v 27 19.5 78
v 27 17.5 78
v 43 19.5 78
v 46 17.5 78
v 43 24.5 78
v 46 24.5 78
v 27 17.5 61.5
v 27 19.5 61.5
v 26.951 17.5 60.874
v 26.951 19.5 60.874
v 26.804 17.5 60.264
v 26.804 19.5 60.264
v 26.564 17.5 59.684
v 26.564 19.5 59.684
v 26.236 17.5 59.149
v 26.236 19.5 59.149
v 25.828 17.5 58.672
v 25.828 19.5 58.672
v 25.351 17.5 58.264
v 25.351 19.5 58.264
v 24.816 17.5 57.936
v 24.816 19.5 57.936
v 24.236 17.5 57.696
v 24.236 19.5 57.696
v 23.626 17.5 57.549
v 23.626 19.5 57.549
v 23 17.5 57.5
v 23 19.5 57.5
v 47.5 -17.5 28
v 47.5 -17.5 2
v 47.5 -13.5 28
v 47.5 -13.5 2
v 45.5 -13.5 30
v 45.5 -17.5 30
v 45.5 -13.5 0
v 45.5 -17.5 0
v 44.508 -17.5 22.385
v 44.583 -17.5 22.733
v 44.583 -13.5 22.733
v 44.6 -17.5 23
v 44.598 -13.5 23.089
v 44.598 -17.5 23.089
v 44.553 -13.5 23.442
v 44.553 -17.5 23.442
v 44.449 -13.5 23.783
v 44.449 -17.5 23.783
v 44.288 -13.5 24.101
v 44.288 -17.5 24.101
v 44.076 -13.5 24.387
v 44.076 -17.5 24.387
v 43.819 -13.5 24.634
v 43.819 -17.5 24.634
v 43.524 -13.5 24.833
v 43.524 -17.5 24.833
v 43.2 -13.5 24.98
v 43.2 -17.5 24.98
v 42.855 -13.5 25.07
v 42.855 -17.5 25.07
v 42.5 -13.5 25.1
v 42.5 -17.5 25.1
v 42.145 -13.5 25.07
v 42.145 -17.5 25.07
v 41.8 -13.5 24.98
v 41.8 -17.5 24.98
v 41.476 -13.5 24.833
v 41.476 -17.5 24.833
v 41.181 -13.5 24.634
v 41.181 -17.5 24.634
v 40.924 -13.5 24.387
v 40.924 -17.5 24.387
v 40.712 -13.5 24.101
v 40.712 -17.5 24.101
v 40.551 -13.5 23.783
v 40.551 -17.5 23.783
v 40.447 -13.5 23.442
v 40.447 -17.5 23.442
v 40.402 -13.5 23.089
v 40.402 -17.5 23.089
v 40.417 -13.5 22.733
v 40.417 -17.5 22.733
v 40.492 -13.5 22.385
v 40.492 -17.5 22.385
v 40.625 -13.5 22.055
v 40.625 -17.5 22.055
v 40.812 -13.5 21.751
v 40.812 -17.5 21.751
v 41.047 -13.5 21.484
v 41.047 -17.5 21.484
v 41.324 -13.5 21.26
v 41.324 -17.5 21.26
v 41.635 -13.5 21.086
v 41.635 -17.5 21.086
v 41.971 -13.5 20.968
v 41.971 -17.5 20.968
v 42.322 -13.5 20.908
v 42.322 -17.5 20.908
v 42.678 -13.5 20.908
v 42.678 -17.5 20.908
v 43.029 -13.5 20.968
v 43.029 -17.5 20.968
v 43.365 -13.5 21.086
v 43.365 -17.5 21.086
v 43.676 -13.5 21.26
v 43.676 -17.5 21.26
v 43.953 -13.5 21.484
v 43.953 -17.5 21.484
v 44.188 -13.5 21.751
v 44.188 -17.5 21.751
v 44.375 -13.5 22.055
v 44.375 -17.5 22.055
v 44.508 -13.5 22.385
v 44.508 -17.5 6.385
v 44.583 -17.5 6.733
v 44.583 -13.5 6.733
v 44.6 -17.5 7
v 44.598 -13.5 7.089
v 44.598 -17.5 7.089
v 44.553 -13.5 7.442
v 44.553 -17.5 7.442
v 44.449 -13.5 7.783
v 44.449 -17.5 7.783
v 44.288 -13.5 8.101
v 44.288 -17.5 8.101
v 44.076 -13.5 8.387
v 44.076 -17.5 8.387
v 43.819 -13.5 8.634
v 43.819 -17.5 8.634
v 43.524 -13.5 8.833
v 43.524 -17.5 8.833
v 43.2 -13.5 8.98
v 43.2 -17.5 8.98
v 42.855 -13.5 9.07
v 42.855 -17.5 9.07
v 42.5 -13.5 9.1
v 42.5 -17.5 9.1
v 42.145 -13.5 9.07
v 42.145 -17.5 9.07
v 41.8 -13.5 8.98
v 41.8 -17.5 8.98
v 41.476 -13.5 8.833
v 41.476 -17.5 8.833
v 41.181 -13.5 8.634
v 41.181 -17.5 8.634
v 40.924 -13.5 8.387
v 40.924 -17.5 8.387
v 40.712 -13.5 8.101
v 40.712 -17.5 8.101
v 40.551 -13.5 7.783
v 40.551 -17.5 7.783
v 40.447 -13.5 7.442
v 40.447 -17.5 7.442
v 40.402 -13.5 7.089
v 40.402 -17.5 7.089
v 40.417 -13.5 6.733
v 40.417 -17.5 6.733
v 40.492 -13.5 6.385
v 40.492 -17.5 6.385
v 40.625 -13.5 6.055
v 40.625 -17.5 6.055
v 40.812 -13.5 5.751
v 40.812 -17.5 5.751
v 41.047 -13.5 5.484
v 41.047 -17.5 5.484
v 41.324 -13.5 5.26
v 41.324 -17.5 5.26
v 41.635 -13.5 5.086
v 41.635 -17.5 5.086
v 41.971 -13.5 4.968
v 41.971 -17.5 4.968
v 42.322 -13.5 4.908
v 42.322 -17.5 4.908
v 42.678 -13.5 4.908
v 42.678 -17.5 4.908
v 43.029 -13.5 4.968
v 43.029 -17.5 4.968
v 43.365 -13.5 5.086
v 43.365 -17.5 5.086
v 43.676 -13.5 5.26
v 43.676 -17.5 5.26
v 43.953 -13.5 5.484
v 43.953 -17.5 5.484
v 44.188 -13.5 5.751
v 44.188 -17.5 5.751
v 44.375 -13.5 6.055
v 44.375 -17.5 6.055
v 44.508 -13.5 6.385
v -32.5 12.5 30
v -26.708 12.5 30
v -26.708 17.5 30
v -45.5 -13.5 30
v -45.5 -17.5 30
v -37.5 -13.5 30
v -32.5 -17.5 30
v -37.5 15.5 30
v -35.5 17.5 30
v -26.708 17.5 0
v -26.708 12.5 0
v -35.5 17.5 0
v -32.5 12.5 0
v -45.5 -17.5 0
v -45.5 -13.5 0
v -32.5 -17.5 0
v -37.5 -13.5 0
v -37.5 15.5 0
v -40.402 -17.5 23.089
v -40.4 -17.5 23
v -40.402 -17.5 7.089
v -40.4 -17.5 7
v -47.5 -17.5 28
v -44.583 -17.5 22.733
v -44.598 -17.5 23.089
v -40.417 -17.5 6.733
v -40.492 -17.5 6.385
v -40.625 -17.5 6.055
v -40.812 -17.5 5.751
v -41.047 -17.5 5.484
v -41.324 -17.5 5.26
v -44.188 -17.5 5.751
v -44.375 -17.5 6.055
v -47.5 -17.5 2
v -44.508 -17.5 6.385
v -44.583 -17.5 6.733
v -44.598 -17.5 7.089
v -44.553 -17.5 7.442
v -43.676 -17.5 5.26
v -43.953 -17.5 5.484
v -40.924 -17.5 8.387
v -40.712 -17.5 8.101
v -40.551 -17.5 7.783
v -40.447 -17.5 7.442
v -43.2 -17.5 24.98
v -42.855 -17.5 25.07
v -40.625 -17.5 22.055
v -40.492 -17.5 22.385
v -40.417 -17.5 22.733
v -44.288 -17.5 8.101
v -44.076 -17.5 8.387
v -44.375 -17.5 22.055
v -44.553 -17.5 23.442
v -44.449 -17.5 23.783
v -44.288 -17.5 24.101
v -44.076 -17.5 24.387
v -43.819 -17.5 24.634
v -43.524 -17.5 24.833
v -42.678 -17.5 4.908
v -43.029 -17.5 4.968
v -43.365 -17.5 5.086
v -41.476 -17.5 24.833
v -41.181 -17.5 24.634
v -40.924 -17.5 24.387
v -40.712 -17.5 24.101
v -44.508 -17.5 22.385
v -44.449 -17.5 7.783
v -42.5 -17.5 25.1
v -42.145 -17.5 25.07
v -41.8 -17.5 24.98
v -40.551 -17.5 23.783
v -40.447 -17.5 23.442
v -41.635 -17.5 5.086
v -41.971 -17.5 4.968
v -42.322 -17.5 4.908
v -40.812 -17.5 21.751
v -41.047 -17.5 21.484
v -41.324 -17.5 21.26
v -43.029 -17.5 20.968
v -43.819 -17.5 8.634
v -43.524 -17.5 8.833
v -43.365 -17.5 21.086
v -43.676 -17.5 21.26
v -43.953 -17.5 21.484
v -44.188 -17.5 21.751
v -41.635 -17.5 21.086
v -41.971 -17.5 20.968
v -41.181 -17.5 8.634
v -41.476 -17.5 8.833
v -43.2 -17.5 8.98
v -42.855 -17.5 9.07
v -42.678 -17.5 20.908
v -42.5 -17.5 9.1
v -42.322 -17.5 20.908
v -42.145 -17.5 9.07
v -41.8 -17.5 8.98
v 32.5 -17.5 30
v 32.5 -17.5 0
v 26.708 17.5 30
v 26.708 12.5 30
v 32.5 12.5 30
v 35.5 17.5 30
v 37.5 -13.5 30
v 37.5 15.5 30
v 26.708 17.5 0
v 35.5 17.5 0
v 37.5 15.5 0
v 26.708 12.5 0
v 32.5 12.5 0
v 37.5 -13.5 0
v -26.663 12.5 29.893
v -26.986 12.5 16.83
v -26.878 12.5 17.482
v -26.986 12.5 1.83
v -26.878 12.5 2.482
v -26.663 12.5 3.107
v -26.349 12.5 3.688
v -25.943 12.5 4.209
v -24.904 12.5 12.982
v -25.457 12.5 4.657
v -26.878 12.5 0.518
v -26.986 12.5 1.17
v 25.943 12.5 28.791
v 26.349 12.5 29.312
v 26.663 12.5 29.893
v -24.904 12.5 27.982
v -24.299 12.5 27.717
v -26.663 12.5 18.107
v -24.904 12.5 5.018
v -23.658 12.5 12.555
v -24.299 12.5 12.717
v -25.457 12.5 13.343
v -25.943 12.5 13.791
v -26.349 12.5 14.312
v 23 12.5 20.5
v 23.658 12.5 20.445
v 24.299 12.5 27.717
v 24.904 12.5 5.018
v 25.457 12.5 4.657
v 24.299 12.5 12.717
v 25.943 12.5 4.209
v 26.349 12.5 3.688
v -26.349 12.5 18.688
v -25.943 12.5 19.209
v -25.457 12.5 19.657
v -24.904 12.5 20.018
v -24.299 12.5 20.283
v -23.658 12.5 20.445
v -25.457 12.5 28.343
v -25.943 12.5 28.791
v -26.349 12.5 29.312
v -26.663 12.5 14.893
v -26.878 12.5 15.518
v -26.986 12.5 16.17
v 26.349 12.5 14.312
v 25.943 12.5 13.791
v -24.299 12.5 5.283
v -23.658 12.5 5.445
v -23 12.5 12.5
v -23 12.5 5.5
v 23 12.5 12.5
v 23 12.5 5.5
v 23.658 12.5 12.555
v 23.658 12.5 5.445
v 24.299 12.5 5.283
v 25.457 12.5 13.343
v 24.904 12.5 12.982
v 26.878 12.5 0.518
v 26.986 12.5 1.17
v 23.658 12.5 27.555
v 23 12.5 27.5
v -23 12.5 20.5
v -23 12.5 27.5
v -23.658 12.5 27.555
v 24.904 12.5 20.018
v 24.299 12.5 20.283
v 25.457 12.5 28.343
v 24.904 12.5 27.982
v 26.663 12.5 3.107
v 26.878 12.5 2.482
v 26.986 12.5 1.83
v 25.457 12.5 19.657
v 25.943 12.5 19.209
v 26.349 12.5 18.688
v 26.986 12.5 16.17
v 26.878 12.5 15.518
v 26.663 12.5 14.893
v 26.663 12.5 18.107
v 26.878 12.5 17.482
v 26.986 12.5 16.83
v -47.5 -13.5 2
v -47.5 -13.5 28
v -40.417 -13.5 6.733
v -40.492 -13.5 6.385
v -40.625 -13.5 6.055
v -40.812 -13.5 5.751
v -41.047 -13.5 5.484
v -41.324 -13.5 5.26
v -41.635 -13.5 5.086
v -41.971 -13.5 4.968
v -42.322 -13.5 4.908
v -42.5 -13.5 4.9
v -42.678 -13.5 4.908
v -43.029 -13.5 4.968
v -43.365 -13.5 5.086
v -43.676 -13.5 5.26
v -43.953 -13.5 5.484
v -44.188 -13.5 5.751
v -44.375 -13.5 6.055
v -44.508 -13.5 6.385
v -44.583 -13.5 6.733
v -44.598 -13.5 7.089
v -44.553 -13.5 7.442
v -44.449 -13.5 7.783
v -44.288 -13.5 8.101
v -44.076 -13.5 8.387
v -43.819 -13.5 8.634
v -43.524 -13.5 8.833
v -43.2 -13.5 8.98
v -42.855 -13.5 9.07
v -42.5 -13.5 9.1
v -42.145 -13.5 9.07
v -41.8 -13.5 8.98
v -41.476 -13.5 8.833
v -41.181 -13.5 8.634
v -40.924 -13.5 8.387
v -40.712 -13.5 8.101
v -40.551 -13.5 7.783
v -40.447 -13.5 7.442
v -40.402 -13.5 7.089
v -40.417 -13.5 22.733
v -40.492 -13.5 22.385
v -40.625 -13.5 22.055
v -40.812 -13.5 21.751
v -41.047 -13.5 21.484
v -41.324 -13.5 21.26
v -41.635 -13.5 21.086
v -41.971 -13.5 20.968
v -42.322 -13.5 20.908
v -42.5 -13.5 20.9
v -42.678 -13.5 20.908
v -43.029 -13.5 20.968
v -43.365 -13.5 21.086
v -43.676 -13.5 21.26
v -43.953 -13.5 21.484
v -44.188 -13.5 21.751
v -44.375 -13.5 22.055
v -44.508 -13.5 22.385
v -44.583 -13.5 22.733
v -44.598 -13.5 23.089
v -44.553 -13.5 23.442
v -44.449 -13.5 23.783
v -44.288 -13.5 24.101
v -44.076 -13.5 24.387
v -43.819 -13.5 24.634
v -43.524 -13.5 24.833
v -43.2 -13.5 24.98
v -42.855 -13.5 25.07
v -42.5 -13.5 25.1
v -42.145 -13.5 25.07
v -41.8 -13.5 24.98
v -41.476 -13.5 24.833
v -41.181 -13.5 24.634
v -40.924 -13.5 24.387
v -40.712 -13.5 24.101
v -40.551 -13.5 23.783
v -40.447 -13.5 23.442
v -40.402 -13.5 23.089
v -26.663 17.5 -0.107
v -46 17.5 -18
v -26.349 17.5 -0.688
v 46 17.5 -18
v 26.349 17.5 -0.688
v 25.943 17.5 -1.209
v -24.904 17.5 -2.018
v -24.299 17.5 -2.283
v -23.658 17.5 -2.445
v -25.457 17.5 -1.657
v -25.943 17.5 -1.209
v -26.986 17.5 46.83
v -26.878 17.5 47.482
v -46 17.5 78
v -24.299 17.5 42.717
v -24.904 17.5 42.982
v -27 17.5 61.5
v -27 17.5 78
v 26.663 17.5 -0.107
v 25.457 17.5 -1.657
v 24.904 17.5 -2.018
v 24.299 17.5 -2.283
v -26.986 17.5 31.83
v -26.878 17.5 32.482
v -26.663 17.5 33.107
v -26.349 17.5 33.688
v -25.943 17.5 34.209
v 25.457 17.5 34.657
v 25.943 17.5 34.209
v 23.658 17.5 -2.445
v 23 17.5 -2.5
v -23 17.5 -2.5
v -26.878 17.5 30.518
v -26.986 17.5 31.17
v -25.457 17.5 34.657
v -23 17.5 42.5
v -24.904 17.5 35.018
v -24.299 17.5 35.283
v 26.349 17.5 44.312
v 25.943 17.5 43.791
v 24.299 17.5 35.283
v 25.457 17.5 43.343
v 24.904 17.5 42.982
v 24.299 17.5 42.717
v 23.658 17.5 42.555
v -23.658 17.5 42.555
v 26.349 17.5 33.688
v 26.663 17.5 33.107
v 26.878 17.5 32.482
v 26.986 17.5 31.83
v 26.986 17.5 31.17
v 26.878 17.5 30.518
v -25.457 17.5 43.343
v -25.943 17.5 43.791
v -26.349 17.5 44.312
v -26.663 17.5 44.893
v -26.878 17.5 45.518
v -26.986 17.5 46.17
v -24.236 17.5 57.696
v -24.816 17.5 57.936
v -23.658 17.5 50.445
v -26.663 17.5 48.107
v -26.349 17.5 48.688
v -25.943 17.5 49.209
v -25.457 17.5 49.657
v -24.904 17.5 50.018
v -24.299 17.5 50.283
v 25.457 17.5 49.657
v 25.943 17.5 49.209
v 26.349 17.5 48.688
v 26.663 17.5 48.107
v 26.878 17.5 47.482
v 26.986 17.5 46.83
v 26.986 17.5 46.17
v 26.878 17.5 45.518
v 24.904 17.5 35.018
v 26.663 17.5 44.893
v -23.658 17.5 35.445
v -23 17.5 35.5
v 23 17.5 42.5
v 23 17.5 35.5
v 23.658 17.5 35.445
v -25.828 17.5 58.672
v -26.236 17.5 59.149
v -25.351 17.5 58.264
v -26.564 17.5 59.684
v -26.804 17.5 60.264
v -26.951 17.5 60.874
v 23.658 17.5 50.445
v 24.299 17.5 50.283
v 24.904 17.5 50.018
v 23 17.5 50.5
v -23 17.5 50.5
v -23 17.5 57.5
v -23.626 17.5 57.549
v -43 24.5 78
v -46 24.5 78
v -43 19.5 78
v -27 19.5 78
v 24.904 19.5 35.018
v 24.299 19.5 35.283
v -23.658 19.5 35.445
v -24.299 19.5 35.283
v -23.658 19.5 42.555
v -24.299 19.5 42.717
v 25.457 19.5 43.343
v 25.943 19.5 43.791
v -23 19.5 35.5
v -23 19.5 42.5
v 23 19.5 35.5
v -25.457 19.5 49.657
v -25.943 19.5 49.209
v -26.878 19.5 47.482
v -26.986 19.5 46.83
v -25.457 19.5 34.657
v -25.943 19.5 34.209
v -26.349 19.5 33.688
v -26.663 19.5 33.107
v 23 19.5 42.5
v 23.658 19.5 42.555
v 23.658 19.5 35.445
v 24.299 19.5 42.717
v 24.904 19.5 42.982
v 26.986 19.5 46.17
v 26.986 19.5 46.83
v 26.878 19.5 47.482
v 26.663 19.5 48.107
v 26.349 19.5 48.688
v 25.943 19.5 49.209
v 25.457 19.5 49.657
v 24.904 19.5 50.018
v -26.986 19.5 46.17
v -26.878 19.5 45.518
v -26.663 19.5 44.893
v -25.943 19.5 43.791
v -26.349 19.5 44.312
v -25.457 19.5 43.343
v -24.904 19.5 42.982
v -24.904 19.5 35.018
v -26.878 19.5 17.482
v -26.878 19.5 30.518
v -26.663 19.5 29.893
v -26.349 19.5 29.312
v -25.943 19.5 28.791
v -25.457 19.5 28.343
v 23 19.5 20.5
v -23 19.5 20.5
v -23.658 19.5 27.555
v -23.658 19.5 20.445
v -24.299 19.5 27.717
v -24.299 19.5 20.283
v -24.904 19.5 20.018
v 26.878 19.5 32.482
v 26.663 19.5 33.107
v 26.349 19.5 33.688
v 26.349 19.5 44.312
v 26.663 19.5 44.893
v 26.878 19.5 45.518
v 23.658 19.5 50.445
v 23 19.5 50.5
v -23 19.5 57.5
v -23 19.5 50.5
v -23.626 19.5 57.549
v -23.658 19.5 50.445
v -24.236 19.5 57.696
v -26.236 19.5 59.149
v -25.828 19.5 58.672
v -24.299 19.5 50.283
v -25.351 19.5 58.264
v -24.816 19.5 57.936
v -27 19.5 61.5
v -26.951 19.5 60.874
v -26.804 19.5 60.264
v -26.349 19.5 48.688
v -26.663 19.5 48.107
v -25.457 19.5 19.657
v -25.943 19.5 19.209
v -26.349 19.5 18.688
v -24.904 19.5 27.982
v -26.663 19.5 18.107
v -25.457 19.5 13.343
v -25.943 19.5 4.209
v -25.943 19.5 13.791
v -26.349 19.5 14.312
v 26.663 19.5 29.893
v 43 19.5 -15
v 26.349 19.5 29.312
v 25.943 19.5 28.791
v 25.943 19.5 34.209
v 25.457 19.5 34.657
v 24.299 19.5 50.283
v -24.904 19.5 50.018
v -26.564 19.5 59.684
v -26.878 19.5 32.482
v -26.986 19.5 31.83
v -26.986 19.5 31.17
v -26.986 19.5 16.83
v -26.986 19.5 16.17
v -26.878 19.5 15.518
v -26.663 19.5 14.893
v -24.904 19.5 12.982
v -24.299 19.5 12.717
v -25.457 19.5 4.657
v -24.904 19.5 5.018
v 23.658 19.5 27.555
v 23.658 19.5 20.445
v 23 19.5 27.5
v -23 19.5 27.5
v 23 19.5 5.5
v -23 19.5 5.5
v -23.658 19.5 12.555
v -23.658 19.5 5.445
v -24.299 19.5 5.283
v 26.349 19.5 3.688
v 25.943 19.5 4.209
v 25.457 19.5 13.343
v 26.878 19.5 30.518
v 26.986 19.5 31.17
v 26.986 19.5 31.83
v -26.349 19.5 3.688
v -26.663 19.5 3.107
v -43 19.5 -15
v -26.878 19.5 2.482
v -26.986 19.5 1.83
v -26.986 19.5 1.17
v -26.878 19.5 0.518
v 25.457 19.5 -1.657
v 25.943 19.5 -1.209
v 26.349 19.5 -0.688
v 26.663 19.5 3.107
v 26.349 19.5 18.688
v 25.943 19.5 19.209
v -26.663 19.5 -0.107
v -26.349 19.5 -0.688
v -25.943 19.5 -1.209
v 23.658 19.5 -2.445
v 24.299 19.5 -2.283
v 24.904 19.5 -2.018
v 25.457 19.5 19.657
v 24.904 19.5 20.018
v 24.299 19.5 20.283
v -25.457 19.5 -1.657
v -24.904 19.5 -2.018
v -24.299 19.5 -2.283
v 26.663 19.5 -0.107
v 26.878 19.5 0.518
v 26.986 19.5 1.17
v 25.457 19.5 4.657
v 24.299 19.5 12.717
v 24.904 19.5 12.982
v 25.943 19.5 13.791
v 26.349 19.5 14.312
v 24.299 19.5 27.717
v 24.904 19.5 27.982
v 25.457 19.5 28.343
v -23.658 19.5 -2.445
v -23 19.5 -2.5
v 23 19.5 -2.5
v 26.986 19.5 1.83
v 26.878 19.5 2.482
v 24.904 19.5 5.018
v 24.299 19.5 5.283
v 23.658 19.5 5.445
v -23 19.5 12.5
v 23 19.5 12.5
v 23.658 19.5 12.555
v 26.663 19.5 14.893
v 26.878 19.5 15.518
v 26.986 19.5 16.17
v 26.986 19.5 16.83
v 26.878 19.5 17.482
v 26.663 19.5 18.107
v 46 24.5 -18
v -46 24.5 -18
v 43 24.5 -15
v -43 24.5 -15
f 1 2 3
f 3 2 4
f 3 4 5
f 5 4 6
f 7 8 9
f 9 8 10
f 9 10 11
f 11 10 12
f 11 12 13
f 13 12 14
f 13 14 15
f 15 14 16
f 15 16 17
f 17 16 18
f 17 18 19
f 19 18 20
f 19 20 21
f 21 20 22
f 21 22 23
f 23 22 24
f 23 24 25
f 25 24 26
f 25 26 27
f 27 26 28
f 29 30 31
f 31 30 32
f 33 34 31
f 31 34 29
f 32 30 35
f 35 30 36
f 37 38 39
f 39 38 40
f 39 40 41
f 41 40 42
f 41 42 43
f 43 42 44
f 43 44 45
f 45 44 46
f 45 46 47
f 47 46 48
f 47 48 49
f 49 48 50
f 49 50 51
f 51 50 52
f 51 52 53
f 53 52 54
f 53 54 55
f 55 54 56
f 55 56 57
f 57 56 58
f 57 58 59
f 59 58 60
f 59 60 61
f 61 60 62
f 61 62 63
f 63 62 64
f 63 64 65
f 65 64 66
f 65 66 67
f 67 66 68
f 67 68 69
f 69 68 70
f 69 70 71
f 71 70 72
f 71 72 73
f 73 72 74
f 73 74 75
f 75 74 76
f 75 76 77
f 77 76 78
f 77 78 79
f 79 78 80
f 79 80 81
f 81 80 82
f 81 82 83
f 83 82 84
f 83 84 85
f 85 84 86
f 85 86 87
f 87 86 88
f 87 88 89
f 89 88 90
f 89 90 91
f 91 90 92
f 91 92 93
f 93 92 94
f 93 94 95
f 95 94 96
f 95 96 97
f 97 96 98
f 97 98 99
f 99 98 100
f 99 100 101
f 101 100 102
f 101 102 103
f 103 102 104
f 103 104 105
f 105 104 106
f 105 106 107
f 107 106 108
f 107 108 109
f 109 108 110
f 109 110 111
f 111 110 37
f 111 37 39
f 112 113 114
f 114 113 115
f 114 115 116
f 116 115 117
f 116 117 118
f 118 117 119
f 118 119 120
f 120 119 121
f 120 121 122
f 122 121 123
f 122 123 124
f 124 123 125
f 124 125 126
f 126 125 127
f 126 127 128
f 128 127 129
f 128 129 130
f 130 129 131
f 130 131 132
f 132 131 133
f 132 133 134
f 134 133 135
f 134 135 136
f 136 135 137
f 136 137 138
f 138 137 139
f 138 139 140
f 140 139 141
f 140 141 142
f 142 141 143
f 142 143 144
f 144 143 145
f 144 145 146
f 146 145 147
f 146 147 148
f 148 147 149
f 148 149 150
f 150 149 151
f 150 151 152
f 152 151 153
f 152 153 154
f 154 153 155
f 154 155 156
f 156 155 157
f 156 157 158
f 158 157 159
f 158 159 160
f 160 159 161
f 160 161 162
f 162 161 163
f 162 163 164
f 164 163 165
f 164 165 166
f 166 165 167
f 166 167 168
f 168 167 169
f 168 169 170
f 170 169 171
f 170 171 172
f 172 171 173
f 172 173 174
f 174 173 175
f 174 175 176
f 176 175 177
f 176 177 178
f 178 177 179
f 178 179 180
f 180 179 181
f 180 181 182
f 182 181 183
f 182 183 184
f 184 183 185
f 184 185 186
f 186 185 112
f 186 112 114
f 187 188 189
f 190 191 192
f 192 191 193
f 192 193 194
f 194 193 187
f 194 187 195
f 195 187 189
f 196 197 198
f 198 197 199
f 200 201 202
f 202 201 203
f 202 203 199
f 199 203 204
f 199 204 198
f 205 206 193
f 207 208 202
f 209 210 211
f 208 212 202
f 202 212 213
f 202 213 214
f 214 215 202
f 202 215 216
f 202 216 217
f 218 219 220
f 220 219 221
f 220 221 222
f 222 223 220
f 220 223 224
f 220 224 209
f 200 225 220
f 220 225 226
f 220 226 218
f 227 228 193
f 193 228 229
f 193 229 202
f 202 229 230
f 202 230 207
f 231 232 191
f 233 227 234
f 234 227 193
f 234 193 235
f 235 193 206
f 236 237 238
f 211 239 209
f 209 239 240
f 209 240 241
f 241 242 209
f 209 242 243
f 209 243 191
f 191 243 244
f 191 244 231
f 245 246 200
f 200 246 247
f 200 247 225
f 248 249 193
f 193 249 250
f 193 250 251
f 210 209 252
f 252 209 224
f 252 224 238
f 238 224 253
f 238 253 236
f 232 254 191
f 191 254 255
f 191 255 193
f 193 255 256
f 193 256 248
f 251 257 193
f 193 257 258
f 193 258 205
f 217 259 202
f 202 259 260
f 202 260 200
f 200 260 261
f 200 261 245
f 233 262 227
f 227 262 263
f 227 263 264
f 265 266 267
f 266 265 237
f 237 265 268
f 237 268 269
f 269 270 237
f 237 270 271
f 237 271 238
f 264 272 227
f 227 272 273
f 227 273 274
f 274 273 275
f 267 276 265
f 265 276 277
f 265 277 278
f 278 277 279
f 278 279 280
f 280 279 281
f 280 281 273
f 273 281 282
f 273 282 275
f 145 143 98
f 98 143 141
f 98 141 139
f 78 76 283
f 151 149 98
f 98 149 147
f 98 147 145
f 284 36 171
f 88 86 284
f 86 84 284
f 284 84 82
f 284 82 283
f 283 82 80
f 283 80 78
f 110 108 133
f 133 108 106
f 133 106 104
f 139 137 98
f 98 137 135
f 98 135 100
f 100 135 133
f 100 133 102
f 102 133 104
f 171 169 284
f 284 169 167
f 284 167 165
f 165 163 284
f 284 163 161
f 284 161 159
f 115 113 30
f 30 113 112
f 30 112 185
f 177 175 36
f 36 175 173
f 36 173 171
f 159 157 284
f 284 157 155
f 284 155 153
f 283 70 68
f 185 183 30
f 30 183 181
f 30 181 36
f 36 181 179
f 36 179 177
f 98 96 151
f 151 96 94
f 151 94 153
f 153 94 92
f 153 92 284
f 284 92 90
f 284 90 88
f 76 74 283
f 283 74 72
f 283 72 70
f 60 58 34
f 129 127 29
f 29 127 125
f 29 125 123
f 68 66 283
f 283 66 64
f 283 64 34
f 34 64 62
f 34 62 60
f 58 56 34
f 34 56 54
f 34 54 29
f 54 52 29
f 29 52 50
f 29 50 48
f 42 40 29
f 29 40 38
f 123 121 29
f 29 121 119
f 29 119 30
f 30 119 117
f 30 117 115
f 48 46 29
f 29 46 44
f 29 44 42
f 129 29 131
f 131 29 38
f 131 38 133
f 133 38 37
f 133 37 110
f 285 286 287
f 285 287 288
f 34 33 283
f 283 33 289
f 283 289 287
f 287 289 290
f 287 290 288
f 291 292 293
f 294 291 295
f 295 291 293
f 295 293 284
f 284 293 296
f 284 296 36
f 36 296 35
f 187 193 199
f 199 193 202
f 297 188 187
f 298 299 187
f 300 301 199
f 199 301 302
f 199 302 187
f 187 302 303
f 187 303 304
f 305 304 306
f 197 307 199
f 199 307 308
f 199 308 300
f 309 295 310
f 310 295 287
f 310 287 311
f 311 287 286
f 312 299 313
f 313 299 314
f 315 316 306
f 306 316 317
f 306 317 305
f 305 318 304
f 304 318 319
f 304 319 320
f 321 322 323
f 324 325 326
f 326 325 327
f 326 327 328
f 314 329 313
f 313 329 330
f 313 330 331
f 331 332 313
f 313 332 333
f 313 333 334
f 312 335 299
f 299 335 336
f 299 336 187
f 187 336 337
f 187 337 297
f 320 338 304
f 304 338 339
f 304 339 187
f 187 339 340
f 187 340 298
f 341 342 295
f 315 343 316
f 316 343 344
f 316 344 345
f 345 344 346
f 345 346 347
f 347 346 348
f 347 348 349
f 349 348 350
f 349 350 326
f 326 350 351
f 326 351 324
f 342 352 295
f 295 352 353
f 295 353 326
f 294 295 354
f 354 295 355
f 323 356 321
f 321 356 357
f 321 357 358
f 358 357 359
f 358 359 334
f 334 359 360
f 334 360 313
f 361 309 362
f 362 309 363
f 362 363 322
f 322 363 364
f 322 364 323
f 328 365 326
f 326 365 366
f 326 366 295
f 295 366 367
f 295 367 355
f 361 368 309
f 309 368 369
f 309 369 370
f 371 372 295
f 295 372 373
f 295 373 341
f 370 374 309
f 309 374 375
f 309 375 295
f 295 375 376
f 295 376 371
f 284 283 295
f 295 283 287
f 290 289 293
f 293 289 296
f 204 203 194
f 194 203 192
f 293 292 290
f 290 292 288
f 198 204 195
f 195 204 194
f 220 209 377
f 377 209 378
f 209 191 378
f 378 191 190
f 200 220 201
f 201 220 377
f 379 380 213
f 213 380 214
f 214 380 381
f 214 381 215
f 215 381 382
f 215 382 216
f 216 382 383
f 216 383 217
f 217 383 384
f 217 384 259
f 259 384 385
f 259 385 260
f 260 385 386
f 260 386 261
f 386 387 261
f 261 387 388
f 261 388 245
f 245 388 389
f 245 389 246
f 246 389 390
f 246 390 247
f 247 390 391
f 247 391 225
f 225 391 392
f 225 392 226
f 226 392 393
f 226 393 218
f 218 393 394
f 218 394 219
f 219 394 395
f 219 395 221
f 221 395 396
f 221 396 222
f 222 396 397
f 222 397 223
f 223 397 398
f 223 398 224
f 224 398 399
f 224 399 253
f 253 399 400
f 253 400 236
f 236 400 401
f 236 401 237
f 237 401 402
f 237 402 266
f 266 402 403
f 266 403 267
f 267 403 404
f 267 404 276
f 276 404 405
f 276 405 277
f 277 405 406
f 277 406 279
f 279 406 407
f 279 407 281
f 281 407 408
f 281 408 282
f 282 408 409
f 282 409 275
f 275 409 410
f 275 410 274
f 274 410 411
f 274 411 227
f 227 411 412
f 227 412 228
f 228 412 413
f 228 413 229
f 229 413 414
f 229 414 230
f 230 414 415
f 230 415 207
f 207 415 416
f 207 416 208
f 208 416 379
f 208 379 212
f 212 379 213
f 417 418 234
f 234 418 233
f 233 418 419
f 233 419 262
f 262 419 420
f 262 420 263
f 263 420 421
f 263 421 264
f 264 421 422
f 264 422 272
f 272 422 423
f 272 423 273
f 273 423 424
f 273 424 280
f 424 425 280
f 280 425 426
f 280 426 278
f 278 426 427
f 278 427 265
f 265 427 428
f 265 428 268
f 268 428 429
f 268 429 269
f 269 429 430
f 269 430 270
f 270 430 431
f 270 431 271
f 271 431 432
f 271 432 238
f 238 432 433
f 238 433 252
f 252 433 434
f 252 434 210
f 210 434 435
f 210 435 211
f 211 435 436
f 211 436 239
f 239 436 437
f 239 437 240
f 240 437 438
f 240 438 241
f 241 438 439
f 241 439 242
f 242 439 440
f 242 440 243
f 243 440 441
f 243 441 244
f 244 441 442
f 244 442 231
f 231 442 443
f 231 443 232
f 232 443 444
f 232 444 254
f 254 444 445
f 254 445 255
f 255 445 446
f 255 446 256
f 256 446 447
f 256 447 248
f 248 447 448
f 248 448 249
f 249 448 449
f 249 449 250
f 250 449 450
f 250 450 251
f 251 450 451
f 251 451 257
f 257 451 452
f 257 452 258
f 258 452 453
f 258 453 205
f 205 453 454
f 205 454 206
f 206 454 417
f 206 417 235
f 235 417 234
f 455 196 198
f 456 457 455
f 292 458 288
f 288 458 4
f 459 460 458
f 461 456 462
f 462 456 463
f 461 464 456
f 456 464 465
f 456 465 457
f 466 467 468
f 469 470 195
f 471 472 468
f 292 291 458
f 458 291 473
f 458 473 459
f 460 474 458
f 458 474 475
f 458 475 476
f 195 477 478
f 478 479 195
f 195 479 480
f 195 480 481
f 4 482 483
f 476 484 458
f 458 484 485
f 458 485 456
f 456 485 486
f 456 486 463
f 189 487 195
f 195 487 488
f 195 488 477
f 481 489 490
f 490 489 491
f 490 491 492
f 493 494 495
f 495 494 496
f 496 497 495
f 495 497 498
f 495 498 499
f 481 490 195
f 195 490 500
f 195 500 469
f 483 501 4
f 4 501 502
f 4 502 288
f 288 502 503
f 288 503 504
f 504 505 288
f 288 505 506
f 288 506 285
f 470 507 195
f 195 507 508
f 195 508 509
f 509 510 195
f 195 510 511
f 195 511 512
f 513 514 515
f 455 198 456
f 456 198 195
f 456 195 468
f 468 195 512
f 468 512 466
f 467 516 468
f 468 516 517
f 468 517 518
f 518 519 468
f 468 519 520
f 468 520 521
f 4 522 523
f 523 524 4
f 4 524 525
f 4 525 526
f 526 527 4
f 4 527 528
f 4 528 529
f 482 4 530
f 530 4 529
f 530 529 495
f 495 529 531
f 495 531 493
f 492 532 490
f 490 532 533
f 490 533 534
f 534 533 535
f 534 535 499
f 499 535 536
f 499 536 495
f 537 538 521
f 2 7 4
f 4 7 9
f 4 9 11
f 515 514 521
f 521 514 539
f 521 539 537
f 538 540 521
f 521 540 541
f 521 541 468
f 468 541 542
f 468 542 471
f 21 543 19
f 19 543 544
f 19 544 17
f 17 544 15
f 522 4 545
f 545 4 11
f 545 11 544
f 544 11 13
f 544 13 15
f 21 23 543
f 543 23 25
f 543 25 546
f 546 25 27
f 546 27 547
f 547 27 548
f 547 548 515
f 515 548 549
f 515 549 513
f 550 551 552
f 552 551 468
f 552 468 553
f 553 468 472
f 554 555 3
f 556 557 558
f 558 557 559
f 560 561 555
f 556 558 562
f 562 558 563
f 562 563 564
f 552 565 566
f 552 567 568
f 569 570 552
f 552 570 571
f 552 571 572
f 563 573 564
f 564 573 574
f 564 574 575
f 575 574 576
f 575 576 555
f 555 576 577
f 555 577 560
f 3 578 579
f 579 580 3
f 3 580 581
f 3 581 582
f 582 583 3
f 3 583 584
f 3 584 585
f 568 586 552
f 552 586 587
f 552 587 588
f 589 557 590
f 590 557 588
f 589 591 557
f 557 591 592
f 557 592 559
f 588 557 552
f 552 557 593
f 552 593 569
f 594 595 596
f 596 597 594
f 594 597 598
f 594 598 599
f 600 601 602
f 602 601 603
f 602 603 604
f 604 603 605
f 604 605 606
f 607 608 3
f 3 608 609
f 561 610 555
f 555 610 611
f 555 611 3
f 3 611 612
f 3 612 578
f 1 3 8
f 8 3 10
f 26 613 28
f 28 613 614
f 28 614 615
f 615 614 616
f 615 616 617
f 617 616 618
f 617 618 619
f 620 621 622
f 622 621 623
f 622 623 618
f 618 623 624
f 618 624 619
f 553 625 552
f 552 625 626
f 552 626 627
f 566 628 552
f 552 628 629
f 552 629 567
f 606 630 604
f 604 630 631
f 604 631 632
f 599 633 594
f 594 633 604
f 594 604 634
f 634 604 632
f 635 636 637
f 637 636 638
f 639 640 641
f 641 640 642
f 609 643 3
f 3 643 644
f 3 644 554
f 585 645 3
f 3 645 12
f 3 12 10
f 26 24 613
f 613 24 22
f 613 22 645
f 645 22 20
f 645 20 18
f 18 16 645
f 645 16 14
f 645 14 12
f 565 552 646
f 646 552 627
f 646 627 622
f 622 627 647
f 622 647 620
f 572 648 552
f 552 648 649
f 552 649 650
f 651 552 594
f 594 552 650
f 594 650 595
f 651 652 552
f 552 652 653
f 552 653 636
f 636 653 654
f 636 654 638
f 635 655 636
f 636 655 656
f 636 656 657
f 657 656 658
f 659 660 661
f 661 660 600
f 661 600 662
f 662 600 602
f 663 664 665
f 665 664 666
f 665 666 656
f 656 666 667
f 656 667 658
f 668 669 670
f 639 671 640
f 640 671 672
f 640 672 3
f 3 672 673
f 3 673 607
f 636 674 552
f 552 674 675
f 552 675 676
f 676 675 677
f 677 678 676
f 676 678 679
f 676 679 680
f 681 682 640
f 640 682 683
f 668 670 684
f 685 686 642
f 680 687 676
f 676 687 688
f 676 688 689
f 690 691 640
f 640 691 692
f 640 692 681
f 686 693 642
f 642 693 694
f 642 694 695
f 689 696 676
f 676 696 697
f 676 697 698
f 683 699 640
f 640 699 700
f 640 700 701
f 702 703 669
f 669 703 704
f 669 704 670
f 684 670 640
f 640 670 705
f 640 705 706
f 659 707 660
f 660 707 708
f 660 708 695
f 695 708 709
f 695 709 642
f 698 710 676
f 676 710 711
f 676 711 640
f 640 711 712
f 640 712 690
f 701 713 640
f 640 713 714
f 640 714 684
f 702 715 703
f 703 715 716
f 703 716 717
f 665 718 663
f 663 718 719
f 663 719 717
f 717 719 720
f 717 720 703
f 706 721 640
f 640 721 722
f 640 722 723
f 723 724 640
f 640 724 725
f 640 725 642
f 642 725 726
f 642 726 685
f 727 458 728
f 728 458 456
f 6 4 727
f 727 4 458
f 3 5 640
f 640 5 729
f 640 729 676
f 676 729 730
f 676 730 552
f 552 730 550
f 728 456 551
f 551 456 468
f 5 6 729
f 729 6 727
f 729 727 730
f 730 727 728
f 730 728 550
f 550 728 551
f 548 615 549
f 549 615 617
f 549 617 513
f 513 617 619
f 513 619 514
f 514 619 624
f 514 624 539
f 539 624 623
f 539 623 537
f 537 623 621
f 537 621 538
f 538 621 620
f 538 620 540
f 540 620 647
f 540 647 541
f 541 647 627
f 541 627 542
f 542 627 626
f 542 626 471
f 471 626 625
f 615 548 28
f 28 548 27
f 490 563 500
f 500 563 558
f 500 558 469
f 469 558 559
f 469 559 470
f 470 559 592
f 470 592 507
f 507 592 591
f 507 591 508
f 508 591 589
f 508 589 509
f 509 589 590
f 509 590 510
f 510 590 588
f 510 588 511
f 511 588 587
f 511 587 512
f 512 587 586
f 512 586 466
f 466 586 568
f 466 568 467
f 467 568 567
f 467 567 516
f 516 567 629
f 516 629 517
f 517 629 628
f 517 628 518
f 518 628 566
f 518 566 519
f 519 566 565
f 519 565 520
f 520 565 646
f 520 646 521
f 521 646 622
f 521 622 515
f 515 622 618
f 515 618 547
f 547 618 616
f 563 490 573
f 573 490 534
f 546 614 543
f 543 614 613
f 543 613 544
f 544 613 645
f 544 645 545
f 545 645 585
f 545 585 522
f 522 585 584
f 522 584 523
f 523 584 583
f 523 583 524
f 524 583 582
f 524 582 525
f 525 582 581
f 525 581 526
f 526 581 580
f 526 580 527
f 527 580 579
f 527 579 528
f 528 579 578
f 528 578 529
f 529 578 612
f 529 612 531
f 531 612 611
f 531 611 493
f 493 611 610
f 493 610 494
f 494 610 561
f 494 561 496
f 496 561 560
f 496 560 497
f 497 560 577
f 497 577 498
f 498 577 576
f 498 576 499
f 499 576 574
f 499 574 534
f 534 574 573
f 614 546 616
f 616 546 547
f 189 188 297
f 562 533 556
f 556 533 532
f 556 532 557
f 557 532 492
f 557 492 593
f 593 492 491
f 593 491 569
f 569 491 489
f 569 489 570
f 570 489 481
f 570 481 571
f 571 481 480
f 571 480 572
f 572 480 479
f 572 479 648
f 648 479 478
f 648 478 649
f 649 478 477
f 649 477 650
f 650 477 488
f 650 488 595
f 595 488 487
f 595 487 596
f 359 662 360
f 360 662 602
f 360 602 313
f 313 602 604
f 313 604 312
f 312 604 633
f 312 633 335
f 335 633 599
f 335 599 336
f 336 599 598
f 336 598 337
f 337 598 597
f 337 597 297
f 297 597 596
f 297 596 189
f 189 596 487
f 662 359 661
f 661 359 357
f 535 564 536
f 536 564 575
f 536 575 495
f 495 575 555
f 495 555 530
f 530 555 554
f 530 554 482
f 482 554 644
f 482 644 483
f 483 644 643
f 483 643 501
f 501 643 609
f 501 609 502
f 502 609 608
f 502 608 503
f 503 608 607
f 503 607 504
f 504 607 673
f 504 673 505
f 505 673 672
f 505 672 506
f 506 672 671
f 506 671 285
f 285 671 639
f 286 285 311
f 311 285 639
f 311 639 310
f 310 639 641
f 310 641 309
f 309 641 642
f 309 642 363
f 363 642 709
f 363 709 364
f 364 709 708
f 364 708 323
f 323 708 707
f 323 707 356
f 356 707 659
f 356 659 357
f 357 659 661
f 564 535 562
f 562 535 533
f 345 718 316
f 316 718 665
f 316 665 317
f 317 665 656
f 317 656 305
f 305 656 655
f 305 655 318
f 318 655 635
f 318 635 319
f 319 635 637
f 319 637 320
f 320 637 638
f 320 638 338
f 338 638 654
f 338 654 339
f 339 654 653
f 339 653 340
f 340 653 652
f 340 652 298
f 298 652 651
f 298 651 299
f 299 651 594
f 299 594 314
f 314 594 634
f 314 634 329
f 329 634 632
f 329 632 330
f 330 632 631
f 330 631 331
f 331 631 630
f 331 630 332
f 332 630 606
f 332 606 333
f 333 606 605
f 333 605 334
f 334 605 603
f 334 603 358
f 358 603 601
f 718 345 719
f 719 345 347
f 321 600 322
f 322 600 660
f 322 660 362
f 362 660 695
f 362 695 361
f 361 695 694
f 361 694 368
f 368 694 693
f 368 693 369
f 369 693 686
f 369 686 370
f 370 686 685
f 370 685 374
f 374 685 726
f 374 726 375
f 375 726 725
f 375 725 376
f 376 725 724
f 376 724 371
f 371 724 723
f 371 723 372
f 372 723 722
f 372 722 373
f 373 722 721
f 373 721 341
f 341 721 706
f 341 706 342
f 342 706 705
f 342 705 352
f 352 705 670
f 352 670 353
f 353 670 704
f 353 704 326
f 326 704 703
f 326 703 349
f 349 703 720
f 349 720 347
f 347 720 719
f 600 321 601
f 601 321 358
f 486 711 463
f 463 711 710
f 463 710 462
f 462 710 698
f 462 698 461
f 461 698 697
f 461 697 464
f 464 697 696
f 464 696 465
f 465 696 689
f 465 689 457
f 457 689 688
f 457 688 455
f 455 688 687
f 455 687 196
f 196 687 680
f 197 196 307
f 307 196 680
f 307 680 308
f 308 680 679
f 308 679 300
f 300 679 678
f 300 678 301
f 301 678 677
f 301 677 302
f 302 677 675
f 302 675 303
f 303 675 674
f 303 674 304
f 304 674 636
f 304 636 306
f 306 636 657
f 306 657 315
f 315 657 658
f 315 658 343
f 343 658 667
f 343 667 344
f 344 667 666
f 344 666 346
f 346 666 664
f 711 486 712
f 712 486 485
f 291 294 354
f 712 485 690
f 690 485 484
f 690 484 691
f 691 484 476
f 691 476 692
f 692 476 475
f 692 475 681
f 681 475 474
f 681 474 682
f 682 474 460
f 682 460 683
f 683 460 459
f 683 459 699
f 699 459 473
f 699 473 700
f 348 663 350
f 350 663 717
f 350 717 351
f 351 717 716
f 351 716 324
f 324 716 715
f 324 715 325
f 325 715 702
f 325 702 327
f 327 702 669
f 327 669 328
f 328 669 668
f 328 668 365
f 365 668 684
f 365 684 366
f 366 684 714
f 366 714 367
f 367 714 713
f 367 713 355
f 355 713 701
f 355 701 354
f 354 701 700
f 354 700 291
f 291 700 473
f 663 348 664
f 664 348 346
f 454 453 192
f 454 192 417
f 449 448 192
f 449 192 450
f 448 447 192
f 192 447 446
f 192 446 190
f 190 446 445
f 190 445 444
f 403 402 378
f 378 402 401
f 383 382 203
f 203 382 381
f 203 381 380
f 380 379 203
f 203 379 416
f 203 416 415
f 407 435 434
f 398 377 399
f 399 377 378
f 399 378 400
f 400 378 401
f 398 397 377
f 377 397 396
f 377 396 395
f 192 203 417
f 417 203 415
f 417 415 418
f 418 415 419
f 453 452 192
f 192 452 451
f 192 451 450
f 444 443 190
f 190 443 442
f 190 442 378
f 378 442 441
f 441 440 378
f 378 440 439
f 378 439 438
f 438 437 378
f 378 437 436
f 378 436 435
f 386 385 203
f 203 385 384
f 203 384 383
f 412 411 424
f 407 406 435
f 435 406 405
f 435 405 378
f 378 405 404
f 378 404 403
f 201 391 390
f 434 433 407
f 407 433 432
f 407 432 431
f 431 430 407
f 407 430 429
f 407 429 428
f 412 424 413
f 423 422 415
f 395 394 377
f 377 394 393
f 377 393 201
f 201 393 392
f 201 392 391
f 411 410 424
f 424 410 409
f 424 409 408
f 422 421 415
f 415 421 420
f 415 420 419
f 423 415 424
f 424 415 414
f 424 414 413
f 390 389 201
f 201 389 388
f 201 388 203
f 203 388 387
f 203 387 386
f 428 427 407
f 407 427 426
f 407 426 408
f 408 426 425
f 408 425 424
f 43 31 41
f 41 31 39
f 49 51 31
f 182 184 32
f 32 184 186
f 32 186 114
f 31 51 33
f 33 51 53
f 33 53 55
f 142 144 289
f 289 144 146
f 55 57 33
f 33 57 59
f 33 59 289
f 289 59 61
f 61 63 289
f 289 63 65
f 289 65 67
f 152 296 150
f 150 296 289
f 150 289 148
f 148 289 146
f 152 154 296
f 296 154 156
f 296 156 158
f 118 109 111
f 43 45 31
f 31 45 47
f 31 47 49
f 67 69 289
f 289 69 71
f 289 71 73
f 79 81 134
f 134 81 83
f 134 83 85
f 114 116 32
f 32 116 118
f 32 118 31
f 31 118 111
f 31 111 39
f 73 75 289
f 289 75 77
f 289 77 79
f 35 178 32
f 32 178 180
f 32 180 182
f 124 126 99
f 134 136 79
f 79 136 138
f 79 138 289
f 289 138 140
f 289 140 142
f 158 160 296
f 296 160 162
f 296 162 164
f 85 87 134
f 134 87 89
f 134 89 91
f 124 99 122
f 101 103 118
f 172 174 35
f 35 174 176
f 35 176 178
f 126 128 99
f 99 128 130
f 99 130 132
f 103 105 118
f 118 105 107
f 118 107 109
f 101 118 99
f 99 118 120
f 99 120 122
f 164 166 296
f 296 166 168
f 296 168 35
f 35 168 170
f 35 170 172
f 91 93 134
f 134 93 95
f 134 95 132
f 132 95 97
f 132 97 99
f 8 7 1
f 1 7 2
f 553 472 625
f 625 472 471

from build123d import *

# Parameters (mm, degrees)
BOSS_EXTRUDE1_DEPTH      = 30
SKETCH2_W                = 50
SKETCH2_H                = 20
CUT_EXTRUDE1_DEPTH       = 30
CHAMFER1_SIZE            = 2
SKETCH3_R                = 2.1
CUT_EXTRUDE2_DEPTH       = 30
SKETCH6_W                = 5
SKETCH6_H                = 30
BOSS_EXTRUDE2_DEPTH      = 5
SKETCH8_W                = 50
SKETCH8_H                = 20
BOSS_EXTRUDE3_DEPTH      = 5
SKETCH9_W                = 25
SKETCH9_H                = 30
BOSS_EXTRUDE4_DEPTH      = 5
SKETCH10_W               = 25
SKETCH10_H               = 30
BOSS_EXTRUDE5_DEPTH      = 5
SKETCH12_W               = 10
SKETCH12_H               = 30
CUT_EXTRUDE3_DEPTH       = 10
SKETCH13_R               = 2.1
CUT_EXTRUDE4_DEPTH       = 10
CHAMFER2_SIZE            = 2
SKETCH14_W               = 6.64500098
SKETCH14_H               = 11.940236137
SKETCH14_W_2             = 7.060313542
SKETCH14_H_2             = 8.410079366
BOSS_EXTRUDE6_DEPTH      = 5
SKETCH15_R               = 2.1
CUT_EXTRUDE5_DEPTH       = 5
SKETCH17_W               = 86
SKETCH17_H               = 93
SKETCH17_W_2             = 71
SKETCH17_H_2             = 30
BOSS_EXTRUDE7_DEPTH      = 2
BOSS_EXTRUDE8_DEPTH      = 5
BOSS_EXTRUDE8_DEPTH_BACK = 2
CUT_EXTRUDE7_DEPTH       = 18
CUT_EXTRUDE8_DEPTH       = 1
SKETCH22_W               = 54
SKETCH22_H               = 16.5
CUT_EXTRUDE9_DEPTH       = 10


with BuildPart() as part:
    # Sketch1 → Boss-Extrude1 (new body)
    with BuildSketch(Plane.XY):
        Polygon((-57.5, -17.5), (-37.5, -17.5), (-32.5, -17.5), (-32.5, 12.5), (32.5, 12.5), (32.5, -17.5), (37.5, -17.5), (57.5, -17.5), (57.5, -12.5), (37.5, -12.5), (37.5, 17.5), (-37.5, 17.5), (-37.5, -12.5), (-57.5, -12.5), align=None)
    extrude(amount=BOSS_EXTRUDE1_DEPTH)

    # Sketch2 → Cut-Extrude1 (cut)
    with BuildSketch(Plane(origin=(0, 17.5, 0), x_dir=(1, 0, 0), z_dir=(0, 1, 0))):
        with Locations((0, -15)):
            Rectangle(SKETCH2_W, SKETCH2_H)
    extrude(amount=-CUT_EXTRUDE1_DEPTH, mode=Mode.SUBTRACT)

    # Chamfer1
    chamfer1_edges = [part.edges().sort_by_distance(p)[0] for p in [
        (-37.5, 17.5, 15),
        (37.5, 17.5, 15),
    ]]
    chamfer(chamfer1_edges, length=CHAMFER1_SIZE)

    # Sketch3 → Cut-Extrude2 (cut)
    with BuildSketch(Plane(origin=(0, -12.5, 0), x_dir=(1, 0, 0), z_dir=(0, 1, 0))):
        with Locations((-47.5, -15)):
            Circle(SKETCH3_R)
        with Locations((47.5, -15)):
            Circle(SKETCH3_R)
    extrude(amount=-CUT_EXTRUDE2_DEPTH, mode=Mode.SUBTRACT)

    # Sketch6 → Boss-Extrude2 (add)
    with BuildSketch(Plane(origin=(0, 17.5, 0), x_dir=(1, 0, 0), z_dir=(0, 1, 0))):
        with Locations((0, -15)):
            Rectangle(SKETCH6_W, SKETCH6_H)
    extrude(amount=-BOSS_EXTRUDE2_DEPTH)

    # Sketch8 → Boss-Extrude3 (add)
    with BuildSketch(Plane(origin=(0, 17.5, 0), x_dir=(1, 0, 0), z_dir=(0, 1, 0))):
        with Locations((0, -15)):
            Rectangle(SKETCH8_W, SKETCH8_H)
    extrude(amount=-BOSS_EXTRUDE3_DEPTH)

    # Sketch9 → Boss-Extrude4 (add)
    with BuildSketch(Plane(origin=(0, -17.5, 0), x_dir=(-1, 0, 0), z_dir=(0, -1, 0))):
        with Locations((45, -15)):
            Rectangle(SKETCH9_W, SKETCH9_H)
    extrude(amount=-BOSS_EXTRUDE4_DEPTH)

    # Sketch10 → Boss-Extrude5 (add)
    with BuildSketch(Plane(origin=(0, -17.5, 0), x_dir=(-1, 0, 0), z_dir=(0, -1, 0))):
        with Locations((-45, -15)):
            Rectangle(SKETCH10_W, SKETCH10_H)
    extrude(amount=-BOSS_EXTRUDE5_DEPTH)

    # Sketch12 → Cut-Extrude3 (cut)
    with BuildSketch(Plane(origin=(0, -12.5, 0), x_dir=(1, 0, 0), z_dir=(0, 1, 0))):
        with Locations((52.5, -15)):
            Rectangle(SKETCH12_W, SKETCH12_H)
        with Locations((-52.5, -15)):
            Rectangle(SKETCH12_W, SKETCH12_H)
    extrude(amount=-CUT_EXTRUDE3_DEPTH, mode=Mode.SUBTRACT)

    # Sketch13 → Cut-Extrude4 (cut)
    with BuildSketch(Plane(origin=(0, -12.5, 0), x_dir=(1, 0, 0), z_dir=(0, 1, 0))):
        with Locations((-42.5, -15)):
            Circle(SKETCH13_R)
        with Locations((42.5, -15)):
            Circle(SKETCH13_R)
    extrude(amount=-CUT_EXTRUDE4_DEPTH, mode=Mode.SUBTRACT)

    # Chamfer2
    chamfer2_edges = [part.edges().sort_by_distance(p)[0] for p in [
        (47.5, -15, 0),
        (-47.5, -15, 0),
        (-47.5, -15, 30),
        (47.5, -15, 30),
    ]]
    chamfer(chamfer2_edges, length=CHAMFER2_SIZE)

    # Sketch14 → Boss-Extrude6 (add)
    with BuildSketch(Plane(origin=(0, -12.5, 0), x_dir=(1, 0, 0), z_dir=(0, 1, 0))):
        with Locations((42.569537531, -14.480859299)):
            Rectangle(SKETCH14_W, SKETCH14_H)
        with Locations((-42.25805311, -15)):
            Rectangle(SKETCH14_W_2, SKETCH14_H_2)
    extrude(amount=-BOSS_EXTRUDE6_DEPTH)

    # Sketch15 → Cut-Extrude5 (cut)
    with BuildSketch(Plane(origin=(0, -12.5, 0), x_dir=(1, 0, 0), z_dir=(0, 1, 0))):
        with Locations((-42.5, -7)):
            Circle(SKETCH15_R)
        with Locations((-42.5, -23)):
            Circle(SKETCH15_R)
        with Locations((42.5, -23)):
            Circle(SKETCH15_R)
        with Locations((42.5, -7)):
            Circle(SKETCH15_R)
    extrude(amount=-CUT_EXTRUDE5_DEPTH, mode=Mode.SUBTRACT)

    # Sketch17 → Boss-Extrude7 (add)
    with BuildSketch(Plane(origin=(0, 17.5, 0), x_dir=(1, 0, 0), z_dir=(0, 1, 0))):
        with Locations((0, -31.5)):
            Rectangle(SKETCH17_W, SKETCH17_H)
        with Locations((0, -15)):
            Rectangle(SKETCH17_W_2, SKETCH17_H_2, mode=Mode.SUBTRACT)
        with Locations((0, -15)):
            Rectangle(SKETCH17_W_2, SKETCH17_H_2)
    extrude(amount=BOSS_EXTRUDE7_DEPTH)

    # Sketch18 → Boss-Extrude8 (add, two sides)
    with BuildSketch(Plane(origin=(0, 19.5, 0), x_dir=(1, 0, 0), z_dir=(0, 1, 0))) as boss_extrude8_sk:
        Polygon((-46, 18), (-46, -78), (-43, -78), (-43, 15), (43, 15), (43, -78), (46, -78), (46, 18), align=None)
    extrude(amount=BOSS_EXTRUDE8_DEPTH)
    extrude(boss_extrude8_sk.sketch, amount=-BOSS_EXTRUDE8_DEPTH_BACK)

    # Sketch19 → Cut-Extrude7 (cut)
    with BuildSketch(Plane(origin=(0, 19.5, 0), x_dir=(1, 0, 0), z_dir=(0, 1, 0))):
        with BuildLine():
            Line((-23, 2.5), (23, 2.5))
            ThreePointArc((23, 2.5), (27, -1.5), (23, -5.5))
            Line((23, -5.5), (-23, -5.5))
            ThreePointArc((-23, -5.5), (-27, -1.5), (-23, 2.5))
        make_face()
        with BuildLine():
            Line((-23, -12.5), (23, -12.5))
            ThreePointArc((23, -12.5), (27, -16.5), (23, -20.5))
            Line((23, -20.5), (-23, -20.5))
            ThreePointArc((-23, -20.5), (-27, -16.5), (-23, -12.5))
        make_face()
        with BuildLine():
            Line((-23, -27.5), (23, -27.5))
            ThreePointArc((23, -27.5), (27, -31.5), (23, -35.5))
            Line((23, -35.5), (-23, -35.5))
            ThreePointArc((-23, -35.5), (-27, -31.5), (-23, -27.5))
        make_face()
        with BuildLine():
            Line((-23, -50.5), (23, -50.5))
            ThreePointArc((23, -50.5), (27, -46.5), (23, -42.5))
            Line((23, -42.5), (-23, -42.5))
            ThreePointArc((-23, -42.5), (-27, -46.5), (-23, -50.5))
        make_face()
        with BuildLine():
            Line((-23, -65.5), (23, -65.5))
            ThreePointArc((23, -65.5), (27, -61.5), (23, -57.5))
            Line((23, -57.5), (-23, -57.5))
            ThreePointArc((-23, -57.5), (-27, -61.5), (-23, -65.5))
        make_face()
    extrude(amount=-CUT_EXTRUDE7_DEPTH, mode=Mode.SUBTRACT)

    # Sketch21 → Cut-Extrude8 (cut)
    with BuildSketch(Plane(origin=(0, -12.5, 0), x_dir=(1, 0, 0), z_dir=(0, 1, 0))):
        Polygon((-37.5, 0), (-37.5, -30), (-45.5, -30), (-47.5, -28), (-47.5, -2), (-45.5, 0), align=None)
        Polygon((37.5, 0), (37.5, -30), (45.5, -30), (47.5, -28), (47.5, -2), (45.5, 0), align=None)
    extrude(amount=-CUT_EXTRUDE8_DEPTH, mode=Mode.SUBTRACT)

    # Sketch22 → Cut-Extrude9 (cut)
    with BuildSketch(Plane(origin=(0, 19.5, 0), x_dir=(1, 0, 0), z_dir=(0, 1, 0))):
        with Locations((0, -69.75)):
            Rectangle(SKETCH22_W, SKETCH22_H)
    extrude(amount=-CUT_EXTRUDE9_DEPTH, mode=Mode.SUBTRACT)


solid = part.part
